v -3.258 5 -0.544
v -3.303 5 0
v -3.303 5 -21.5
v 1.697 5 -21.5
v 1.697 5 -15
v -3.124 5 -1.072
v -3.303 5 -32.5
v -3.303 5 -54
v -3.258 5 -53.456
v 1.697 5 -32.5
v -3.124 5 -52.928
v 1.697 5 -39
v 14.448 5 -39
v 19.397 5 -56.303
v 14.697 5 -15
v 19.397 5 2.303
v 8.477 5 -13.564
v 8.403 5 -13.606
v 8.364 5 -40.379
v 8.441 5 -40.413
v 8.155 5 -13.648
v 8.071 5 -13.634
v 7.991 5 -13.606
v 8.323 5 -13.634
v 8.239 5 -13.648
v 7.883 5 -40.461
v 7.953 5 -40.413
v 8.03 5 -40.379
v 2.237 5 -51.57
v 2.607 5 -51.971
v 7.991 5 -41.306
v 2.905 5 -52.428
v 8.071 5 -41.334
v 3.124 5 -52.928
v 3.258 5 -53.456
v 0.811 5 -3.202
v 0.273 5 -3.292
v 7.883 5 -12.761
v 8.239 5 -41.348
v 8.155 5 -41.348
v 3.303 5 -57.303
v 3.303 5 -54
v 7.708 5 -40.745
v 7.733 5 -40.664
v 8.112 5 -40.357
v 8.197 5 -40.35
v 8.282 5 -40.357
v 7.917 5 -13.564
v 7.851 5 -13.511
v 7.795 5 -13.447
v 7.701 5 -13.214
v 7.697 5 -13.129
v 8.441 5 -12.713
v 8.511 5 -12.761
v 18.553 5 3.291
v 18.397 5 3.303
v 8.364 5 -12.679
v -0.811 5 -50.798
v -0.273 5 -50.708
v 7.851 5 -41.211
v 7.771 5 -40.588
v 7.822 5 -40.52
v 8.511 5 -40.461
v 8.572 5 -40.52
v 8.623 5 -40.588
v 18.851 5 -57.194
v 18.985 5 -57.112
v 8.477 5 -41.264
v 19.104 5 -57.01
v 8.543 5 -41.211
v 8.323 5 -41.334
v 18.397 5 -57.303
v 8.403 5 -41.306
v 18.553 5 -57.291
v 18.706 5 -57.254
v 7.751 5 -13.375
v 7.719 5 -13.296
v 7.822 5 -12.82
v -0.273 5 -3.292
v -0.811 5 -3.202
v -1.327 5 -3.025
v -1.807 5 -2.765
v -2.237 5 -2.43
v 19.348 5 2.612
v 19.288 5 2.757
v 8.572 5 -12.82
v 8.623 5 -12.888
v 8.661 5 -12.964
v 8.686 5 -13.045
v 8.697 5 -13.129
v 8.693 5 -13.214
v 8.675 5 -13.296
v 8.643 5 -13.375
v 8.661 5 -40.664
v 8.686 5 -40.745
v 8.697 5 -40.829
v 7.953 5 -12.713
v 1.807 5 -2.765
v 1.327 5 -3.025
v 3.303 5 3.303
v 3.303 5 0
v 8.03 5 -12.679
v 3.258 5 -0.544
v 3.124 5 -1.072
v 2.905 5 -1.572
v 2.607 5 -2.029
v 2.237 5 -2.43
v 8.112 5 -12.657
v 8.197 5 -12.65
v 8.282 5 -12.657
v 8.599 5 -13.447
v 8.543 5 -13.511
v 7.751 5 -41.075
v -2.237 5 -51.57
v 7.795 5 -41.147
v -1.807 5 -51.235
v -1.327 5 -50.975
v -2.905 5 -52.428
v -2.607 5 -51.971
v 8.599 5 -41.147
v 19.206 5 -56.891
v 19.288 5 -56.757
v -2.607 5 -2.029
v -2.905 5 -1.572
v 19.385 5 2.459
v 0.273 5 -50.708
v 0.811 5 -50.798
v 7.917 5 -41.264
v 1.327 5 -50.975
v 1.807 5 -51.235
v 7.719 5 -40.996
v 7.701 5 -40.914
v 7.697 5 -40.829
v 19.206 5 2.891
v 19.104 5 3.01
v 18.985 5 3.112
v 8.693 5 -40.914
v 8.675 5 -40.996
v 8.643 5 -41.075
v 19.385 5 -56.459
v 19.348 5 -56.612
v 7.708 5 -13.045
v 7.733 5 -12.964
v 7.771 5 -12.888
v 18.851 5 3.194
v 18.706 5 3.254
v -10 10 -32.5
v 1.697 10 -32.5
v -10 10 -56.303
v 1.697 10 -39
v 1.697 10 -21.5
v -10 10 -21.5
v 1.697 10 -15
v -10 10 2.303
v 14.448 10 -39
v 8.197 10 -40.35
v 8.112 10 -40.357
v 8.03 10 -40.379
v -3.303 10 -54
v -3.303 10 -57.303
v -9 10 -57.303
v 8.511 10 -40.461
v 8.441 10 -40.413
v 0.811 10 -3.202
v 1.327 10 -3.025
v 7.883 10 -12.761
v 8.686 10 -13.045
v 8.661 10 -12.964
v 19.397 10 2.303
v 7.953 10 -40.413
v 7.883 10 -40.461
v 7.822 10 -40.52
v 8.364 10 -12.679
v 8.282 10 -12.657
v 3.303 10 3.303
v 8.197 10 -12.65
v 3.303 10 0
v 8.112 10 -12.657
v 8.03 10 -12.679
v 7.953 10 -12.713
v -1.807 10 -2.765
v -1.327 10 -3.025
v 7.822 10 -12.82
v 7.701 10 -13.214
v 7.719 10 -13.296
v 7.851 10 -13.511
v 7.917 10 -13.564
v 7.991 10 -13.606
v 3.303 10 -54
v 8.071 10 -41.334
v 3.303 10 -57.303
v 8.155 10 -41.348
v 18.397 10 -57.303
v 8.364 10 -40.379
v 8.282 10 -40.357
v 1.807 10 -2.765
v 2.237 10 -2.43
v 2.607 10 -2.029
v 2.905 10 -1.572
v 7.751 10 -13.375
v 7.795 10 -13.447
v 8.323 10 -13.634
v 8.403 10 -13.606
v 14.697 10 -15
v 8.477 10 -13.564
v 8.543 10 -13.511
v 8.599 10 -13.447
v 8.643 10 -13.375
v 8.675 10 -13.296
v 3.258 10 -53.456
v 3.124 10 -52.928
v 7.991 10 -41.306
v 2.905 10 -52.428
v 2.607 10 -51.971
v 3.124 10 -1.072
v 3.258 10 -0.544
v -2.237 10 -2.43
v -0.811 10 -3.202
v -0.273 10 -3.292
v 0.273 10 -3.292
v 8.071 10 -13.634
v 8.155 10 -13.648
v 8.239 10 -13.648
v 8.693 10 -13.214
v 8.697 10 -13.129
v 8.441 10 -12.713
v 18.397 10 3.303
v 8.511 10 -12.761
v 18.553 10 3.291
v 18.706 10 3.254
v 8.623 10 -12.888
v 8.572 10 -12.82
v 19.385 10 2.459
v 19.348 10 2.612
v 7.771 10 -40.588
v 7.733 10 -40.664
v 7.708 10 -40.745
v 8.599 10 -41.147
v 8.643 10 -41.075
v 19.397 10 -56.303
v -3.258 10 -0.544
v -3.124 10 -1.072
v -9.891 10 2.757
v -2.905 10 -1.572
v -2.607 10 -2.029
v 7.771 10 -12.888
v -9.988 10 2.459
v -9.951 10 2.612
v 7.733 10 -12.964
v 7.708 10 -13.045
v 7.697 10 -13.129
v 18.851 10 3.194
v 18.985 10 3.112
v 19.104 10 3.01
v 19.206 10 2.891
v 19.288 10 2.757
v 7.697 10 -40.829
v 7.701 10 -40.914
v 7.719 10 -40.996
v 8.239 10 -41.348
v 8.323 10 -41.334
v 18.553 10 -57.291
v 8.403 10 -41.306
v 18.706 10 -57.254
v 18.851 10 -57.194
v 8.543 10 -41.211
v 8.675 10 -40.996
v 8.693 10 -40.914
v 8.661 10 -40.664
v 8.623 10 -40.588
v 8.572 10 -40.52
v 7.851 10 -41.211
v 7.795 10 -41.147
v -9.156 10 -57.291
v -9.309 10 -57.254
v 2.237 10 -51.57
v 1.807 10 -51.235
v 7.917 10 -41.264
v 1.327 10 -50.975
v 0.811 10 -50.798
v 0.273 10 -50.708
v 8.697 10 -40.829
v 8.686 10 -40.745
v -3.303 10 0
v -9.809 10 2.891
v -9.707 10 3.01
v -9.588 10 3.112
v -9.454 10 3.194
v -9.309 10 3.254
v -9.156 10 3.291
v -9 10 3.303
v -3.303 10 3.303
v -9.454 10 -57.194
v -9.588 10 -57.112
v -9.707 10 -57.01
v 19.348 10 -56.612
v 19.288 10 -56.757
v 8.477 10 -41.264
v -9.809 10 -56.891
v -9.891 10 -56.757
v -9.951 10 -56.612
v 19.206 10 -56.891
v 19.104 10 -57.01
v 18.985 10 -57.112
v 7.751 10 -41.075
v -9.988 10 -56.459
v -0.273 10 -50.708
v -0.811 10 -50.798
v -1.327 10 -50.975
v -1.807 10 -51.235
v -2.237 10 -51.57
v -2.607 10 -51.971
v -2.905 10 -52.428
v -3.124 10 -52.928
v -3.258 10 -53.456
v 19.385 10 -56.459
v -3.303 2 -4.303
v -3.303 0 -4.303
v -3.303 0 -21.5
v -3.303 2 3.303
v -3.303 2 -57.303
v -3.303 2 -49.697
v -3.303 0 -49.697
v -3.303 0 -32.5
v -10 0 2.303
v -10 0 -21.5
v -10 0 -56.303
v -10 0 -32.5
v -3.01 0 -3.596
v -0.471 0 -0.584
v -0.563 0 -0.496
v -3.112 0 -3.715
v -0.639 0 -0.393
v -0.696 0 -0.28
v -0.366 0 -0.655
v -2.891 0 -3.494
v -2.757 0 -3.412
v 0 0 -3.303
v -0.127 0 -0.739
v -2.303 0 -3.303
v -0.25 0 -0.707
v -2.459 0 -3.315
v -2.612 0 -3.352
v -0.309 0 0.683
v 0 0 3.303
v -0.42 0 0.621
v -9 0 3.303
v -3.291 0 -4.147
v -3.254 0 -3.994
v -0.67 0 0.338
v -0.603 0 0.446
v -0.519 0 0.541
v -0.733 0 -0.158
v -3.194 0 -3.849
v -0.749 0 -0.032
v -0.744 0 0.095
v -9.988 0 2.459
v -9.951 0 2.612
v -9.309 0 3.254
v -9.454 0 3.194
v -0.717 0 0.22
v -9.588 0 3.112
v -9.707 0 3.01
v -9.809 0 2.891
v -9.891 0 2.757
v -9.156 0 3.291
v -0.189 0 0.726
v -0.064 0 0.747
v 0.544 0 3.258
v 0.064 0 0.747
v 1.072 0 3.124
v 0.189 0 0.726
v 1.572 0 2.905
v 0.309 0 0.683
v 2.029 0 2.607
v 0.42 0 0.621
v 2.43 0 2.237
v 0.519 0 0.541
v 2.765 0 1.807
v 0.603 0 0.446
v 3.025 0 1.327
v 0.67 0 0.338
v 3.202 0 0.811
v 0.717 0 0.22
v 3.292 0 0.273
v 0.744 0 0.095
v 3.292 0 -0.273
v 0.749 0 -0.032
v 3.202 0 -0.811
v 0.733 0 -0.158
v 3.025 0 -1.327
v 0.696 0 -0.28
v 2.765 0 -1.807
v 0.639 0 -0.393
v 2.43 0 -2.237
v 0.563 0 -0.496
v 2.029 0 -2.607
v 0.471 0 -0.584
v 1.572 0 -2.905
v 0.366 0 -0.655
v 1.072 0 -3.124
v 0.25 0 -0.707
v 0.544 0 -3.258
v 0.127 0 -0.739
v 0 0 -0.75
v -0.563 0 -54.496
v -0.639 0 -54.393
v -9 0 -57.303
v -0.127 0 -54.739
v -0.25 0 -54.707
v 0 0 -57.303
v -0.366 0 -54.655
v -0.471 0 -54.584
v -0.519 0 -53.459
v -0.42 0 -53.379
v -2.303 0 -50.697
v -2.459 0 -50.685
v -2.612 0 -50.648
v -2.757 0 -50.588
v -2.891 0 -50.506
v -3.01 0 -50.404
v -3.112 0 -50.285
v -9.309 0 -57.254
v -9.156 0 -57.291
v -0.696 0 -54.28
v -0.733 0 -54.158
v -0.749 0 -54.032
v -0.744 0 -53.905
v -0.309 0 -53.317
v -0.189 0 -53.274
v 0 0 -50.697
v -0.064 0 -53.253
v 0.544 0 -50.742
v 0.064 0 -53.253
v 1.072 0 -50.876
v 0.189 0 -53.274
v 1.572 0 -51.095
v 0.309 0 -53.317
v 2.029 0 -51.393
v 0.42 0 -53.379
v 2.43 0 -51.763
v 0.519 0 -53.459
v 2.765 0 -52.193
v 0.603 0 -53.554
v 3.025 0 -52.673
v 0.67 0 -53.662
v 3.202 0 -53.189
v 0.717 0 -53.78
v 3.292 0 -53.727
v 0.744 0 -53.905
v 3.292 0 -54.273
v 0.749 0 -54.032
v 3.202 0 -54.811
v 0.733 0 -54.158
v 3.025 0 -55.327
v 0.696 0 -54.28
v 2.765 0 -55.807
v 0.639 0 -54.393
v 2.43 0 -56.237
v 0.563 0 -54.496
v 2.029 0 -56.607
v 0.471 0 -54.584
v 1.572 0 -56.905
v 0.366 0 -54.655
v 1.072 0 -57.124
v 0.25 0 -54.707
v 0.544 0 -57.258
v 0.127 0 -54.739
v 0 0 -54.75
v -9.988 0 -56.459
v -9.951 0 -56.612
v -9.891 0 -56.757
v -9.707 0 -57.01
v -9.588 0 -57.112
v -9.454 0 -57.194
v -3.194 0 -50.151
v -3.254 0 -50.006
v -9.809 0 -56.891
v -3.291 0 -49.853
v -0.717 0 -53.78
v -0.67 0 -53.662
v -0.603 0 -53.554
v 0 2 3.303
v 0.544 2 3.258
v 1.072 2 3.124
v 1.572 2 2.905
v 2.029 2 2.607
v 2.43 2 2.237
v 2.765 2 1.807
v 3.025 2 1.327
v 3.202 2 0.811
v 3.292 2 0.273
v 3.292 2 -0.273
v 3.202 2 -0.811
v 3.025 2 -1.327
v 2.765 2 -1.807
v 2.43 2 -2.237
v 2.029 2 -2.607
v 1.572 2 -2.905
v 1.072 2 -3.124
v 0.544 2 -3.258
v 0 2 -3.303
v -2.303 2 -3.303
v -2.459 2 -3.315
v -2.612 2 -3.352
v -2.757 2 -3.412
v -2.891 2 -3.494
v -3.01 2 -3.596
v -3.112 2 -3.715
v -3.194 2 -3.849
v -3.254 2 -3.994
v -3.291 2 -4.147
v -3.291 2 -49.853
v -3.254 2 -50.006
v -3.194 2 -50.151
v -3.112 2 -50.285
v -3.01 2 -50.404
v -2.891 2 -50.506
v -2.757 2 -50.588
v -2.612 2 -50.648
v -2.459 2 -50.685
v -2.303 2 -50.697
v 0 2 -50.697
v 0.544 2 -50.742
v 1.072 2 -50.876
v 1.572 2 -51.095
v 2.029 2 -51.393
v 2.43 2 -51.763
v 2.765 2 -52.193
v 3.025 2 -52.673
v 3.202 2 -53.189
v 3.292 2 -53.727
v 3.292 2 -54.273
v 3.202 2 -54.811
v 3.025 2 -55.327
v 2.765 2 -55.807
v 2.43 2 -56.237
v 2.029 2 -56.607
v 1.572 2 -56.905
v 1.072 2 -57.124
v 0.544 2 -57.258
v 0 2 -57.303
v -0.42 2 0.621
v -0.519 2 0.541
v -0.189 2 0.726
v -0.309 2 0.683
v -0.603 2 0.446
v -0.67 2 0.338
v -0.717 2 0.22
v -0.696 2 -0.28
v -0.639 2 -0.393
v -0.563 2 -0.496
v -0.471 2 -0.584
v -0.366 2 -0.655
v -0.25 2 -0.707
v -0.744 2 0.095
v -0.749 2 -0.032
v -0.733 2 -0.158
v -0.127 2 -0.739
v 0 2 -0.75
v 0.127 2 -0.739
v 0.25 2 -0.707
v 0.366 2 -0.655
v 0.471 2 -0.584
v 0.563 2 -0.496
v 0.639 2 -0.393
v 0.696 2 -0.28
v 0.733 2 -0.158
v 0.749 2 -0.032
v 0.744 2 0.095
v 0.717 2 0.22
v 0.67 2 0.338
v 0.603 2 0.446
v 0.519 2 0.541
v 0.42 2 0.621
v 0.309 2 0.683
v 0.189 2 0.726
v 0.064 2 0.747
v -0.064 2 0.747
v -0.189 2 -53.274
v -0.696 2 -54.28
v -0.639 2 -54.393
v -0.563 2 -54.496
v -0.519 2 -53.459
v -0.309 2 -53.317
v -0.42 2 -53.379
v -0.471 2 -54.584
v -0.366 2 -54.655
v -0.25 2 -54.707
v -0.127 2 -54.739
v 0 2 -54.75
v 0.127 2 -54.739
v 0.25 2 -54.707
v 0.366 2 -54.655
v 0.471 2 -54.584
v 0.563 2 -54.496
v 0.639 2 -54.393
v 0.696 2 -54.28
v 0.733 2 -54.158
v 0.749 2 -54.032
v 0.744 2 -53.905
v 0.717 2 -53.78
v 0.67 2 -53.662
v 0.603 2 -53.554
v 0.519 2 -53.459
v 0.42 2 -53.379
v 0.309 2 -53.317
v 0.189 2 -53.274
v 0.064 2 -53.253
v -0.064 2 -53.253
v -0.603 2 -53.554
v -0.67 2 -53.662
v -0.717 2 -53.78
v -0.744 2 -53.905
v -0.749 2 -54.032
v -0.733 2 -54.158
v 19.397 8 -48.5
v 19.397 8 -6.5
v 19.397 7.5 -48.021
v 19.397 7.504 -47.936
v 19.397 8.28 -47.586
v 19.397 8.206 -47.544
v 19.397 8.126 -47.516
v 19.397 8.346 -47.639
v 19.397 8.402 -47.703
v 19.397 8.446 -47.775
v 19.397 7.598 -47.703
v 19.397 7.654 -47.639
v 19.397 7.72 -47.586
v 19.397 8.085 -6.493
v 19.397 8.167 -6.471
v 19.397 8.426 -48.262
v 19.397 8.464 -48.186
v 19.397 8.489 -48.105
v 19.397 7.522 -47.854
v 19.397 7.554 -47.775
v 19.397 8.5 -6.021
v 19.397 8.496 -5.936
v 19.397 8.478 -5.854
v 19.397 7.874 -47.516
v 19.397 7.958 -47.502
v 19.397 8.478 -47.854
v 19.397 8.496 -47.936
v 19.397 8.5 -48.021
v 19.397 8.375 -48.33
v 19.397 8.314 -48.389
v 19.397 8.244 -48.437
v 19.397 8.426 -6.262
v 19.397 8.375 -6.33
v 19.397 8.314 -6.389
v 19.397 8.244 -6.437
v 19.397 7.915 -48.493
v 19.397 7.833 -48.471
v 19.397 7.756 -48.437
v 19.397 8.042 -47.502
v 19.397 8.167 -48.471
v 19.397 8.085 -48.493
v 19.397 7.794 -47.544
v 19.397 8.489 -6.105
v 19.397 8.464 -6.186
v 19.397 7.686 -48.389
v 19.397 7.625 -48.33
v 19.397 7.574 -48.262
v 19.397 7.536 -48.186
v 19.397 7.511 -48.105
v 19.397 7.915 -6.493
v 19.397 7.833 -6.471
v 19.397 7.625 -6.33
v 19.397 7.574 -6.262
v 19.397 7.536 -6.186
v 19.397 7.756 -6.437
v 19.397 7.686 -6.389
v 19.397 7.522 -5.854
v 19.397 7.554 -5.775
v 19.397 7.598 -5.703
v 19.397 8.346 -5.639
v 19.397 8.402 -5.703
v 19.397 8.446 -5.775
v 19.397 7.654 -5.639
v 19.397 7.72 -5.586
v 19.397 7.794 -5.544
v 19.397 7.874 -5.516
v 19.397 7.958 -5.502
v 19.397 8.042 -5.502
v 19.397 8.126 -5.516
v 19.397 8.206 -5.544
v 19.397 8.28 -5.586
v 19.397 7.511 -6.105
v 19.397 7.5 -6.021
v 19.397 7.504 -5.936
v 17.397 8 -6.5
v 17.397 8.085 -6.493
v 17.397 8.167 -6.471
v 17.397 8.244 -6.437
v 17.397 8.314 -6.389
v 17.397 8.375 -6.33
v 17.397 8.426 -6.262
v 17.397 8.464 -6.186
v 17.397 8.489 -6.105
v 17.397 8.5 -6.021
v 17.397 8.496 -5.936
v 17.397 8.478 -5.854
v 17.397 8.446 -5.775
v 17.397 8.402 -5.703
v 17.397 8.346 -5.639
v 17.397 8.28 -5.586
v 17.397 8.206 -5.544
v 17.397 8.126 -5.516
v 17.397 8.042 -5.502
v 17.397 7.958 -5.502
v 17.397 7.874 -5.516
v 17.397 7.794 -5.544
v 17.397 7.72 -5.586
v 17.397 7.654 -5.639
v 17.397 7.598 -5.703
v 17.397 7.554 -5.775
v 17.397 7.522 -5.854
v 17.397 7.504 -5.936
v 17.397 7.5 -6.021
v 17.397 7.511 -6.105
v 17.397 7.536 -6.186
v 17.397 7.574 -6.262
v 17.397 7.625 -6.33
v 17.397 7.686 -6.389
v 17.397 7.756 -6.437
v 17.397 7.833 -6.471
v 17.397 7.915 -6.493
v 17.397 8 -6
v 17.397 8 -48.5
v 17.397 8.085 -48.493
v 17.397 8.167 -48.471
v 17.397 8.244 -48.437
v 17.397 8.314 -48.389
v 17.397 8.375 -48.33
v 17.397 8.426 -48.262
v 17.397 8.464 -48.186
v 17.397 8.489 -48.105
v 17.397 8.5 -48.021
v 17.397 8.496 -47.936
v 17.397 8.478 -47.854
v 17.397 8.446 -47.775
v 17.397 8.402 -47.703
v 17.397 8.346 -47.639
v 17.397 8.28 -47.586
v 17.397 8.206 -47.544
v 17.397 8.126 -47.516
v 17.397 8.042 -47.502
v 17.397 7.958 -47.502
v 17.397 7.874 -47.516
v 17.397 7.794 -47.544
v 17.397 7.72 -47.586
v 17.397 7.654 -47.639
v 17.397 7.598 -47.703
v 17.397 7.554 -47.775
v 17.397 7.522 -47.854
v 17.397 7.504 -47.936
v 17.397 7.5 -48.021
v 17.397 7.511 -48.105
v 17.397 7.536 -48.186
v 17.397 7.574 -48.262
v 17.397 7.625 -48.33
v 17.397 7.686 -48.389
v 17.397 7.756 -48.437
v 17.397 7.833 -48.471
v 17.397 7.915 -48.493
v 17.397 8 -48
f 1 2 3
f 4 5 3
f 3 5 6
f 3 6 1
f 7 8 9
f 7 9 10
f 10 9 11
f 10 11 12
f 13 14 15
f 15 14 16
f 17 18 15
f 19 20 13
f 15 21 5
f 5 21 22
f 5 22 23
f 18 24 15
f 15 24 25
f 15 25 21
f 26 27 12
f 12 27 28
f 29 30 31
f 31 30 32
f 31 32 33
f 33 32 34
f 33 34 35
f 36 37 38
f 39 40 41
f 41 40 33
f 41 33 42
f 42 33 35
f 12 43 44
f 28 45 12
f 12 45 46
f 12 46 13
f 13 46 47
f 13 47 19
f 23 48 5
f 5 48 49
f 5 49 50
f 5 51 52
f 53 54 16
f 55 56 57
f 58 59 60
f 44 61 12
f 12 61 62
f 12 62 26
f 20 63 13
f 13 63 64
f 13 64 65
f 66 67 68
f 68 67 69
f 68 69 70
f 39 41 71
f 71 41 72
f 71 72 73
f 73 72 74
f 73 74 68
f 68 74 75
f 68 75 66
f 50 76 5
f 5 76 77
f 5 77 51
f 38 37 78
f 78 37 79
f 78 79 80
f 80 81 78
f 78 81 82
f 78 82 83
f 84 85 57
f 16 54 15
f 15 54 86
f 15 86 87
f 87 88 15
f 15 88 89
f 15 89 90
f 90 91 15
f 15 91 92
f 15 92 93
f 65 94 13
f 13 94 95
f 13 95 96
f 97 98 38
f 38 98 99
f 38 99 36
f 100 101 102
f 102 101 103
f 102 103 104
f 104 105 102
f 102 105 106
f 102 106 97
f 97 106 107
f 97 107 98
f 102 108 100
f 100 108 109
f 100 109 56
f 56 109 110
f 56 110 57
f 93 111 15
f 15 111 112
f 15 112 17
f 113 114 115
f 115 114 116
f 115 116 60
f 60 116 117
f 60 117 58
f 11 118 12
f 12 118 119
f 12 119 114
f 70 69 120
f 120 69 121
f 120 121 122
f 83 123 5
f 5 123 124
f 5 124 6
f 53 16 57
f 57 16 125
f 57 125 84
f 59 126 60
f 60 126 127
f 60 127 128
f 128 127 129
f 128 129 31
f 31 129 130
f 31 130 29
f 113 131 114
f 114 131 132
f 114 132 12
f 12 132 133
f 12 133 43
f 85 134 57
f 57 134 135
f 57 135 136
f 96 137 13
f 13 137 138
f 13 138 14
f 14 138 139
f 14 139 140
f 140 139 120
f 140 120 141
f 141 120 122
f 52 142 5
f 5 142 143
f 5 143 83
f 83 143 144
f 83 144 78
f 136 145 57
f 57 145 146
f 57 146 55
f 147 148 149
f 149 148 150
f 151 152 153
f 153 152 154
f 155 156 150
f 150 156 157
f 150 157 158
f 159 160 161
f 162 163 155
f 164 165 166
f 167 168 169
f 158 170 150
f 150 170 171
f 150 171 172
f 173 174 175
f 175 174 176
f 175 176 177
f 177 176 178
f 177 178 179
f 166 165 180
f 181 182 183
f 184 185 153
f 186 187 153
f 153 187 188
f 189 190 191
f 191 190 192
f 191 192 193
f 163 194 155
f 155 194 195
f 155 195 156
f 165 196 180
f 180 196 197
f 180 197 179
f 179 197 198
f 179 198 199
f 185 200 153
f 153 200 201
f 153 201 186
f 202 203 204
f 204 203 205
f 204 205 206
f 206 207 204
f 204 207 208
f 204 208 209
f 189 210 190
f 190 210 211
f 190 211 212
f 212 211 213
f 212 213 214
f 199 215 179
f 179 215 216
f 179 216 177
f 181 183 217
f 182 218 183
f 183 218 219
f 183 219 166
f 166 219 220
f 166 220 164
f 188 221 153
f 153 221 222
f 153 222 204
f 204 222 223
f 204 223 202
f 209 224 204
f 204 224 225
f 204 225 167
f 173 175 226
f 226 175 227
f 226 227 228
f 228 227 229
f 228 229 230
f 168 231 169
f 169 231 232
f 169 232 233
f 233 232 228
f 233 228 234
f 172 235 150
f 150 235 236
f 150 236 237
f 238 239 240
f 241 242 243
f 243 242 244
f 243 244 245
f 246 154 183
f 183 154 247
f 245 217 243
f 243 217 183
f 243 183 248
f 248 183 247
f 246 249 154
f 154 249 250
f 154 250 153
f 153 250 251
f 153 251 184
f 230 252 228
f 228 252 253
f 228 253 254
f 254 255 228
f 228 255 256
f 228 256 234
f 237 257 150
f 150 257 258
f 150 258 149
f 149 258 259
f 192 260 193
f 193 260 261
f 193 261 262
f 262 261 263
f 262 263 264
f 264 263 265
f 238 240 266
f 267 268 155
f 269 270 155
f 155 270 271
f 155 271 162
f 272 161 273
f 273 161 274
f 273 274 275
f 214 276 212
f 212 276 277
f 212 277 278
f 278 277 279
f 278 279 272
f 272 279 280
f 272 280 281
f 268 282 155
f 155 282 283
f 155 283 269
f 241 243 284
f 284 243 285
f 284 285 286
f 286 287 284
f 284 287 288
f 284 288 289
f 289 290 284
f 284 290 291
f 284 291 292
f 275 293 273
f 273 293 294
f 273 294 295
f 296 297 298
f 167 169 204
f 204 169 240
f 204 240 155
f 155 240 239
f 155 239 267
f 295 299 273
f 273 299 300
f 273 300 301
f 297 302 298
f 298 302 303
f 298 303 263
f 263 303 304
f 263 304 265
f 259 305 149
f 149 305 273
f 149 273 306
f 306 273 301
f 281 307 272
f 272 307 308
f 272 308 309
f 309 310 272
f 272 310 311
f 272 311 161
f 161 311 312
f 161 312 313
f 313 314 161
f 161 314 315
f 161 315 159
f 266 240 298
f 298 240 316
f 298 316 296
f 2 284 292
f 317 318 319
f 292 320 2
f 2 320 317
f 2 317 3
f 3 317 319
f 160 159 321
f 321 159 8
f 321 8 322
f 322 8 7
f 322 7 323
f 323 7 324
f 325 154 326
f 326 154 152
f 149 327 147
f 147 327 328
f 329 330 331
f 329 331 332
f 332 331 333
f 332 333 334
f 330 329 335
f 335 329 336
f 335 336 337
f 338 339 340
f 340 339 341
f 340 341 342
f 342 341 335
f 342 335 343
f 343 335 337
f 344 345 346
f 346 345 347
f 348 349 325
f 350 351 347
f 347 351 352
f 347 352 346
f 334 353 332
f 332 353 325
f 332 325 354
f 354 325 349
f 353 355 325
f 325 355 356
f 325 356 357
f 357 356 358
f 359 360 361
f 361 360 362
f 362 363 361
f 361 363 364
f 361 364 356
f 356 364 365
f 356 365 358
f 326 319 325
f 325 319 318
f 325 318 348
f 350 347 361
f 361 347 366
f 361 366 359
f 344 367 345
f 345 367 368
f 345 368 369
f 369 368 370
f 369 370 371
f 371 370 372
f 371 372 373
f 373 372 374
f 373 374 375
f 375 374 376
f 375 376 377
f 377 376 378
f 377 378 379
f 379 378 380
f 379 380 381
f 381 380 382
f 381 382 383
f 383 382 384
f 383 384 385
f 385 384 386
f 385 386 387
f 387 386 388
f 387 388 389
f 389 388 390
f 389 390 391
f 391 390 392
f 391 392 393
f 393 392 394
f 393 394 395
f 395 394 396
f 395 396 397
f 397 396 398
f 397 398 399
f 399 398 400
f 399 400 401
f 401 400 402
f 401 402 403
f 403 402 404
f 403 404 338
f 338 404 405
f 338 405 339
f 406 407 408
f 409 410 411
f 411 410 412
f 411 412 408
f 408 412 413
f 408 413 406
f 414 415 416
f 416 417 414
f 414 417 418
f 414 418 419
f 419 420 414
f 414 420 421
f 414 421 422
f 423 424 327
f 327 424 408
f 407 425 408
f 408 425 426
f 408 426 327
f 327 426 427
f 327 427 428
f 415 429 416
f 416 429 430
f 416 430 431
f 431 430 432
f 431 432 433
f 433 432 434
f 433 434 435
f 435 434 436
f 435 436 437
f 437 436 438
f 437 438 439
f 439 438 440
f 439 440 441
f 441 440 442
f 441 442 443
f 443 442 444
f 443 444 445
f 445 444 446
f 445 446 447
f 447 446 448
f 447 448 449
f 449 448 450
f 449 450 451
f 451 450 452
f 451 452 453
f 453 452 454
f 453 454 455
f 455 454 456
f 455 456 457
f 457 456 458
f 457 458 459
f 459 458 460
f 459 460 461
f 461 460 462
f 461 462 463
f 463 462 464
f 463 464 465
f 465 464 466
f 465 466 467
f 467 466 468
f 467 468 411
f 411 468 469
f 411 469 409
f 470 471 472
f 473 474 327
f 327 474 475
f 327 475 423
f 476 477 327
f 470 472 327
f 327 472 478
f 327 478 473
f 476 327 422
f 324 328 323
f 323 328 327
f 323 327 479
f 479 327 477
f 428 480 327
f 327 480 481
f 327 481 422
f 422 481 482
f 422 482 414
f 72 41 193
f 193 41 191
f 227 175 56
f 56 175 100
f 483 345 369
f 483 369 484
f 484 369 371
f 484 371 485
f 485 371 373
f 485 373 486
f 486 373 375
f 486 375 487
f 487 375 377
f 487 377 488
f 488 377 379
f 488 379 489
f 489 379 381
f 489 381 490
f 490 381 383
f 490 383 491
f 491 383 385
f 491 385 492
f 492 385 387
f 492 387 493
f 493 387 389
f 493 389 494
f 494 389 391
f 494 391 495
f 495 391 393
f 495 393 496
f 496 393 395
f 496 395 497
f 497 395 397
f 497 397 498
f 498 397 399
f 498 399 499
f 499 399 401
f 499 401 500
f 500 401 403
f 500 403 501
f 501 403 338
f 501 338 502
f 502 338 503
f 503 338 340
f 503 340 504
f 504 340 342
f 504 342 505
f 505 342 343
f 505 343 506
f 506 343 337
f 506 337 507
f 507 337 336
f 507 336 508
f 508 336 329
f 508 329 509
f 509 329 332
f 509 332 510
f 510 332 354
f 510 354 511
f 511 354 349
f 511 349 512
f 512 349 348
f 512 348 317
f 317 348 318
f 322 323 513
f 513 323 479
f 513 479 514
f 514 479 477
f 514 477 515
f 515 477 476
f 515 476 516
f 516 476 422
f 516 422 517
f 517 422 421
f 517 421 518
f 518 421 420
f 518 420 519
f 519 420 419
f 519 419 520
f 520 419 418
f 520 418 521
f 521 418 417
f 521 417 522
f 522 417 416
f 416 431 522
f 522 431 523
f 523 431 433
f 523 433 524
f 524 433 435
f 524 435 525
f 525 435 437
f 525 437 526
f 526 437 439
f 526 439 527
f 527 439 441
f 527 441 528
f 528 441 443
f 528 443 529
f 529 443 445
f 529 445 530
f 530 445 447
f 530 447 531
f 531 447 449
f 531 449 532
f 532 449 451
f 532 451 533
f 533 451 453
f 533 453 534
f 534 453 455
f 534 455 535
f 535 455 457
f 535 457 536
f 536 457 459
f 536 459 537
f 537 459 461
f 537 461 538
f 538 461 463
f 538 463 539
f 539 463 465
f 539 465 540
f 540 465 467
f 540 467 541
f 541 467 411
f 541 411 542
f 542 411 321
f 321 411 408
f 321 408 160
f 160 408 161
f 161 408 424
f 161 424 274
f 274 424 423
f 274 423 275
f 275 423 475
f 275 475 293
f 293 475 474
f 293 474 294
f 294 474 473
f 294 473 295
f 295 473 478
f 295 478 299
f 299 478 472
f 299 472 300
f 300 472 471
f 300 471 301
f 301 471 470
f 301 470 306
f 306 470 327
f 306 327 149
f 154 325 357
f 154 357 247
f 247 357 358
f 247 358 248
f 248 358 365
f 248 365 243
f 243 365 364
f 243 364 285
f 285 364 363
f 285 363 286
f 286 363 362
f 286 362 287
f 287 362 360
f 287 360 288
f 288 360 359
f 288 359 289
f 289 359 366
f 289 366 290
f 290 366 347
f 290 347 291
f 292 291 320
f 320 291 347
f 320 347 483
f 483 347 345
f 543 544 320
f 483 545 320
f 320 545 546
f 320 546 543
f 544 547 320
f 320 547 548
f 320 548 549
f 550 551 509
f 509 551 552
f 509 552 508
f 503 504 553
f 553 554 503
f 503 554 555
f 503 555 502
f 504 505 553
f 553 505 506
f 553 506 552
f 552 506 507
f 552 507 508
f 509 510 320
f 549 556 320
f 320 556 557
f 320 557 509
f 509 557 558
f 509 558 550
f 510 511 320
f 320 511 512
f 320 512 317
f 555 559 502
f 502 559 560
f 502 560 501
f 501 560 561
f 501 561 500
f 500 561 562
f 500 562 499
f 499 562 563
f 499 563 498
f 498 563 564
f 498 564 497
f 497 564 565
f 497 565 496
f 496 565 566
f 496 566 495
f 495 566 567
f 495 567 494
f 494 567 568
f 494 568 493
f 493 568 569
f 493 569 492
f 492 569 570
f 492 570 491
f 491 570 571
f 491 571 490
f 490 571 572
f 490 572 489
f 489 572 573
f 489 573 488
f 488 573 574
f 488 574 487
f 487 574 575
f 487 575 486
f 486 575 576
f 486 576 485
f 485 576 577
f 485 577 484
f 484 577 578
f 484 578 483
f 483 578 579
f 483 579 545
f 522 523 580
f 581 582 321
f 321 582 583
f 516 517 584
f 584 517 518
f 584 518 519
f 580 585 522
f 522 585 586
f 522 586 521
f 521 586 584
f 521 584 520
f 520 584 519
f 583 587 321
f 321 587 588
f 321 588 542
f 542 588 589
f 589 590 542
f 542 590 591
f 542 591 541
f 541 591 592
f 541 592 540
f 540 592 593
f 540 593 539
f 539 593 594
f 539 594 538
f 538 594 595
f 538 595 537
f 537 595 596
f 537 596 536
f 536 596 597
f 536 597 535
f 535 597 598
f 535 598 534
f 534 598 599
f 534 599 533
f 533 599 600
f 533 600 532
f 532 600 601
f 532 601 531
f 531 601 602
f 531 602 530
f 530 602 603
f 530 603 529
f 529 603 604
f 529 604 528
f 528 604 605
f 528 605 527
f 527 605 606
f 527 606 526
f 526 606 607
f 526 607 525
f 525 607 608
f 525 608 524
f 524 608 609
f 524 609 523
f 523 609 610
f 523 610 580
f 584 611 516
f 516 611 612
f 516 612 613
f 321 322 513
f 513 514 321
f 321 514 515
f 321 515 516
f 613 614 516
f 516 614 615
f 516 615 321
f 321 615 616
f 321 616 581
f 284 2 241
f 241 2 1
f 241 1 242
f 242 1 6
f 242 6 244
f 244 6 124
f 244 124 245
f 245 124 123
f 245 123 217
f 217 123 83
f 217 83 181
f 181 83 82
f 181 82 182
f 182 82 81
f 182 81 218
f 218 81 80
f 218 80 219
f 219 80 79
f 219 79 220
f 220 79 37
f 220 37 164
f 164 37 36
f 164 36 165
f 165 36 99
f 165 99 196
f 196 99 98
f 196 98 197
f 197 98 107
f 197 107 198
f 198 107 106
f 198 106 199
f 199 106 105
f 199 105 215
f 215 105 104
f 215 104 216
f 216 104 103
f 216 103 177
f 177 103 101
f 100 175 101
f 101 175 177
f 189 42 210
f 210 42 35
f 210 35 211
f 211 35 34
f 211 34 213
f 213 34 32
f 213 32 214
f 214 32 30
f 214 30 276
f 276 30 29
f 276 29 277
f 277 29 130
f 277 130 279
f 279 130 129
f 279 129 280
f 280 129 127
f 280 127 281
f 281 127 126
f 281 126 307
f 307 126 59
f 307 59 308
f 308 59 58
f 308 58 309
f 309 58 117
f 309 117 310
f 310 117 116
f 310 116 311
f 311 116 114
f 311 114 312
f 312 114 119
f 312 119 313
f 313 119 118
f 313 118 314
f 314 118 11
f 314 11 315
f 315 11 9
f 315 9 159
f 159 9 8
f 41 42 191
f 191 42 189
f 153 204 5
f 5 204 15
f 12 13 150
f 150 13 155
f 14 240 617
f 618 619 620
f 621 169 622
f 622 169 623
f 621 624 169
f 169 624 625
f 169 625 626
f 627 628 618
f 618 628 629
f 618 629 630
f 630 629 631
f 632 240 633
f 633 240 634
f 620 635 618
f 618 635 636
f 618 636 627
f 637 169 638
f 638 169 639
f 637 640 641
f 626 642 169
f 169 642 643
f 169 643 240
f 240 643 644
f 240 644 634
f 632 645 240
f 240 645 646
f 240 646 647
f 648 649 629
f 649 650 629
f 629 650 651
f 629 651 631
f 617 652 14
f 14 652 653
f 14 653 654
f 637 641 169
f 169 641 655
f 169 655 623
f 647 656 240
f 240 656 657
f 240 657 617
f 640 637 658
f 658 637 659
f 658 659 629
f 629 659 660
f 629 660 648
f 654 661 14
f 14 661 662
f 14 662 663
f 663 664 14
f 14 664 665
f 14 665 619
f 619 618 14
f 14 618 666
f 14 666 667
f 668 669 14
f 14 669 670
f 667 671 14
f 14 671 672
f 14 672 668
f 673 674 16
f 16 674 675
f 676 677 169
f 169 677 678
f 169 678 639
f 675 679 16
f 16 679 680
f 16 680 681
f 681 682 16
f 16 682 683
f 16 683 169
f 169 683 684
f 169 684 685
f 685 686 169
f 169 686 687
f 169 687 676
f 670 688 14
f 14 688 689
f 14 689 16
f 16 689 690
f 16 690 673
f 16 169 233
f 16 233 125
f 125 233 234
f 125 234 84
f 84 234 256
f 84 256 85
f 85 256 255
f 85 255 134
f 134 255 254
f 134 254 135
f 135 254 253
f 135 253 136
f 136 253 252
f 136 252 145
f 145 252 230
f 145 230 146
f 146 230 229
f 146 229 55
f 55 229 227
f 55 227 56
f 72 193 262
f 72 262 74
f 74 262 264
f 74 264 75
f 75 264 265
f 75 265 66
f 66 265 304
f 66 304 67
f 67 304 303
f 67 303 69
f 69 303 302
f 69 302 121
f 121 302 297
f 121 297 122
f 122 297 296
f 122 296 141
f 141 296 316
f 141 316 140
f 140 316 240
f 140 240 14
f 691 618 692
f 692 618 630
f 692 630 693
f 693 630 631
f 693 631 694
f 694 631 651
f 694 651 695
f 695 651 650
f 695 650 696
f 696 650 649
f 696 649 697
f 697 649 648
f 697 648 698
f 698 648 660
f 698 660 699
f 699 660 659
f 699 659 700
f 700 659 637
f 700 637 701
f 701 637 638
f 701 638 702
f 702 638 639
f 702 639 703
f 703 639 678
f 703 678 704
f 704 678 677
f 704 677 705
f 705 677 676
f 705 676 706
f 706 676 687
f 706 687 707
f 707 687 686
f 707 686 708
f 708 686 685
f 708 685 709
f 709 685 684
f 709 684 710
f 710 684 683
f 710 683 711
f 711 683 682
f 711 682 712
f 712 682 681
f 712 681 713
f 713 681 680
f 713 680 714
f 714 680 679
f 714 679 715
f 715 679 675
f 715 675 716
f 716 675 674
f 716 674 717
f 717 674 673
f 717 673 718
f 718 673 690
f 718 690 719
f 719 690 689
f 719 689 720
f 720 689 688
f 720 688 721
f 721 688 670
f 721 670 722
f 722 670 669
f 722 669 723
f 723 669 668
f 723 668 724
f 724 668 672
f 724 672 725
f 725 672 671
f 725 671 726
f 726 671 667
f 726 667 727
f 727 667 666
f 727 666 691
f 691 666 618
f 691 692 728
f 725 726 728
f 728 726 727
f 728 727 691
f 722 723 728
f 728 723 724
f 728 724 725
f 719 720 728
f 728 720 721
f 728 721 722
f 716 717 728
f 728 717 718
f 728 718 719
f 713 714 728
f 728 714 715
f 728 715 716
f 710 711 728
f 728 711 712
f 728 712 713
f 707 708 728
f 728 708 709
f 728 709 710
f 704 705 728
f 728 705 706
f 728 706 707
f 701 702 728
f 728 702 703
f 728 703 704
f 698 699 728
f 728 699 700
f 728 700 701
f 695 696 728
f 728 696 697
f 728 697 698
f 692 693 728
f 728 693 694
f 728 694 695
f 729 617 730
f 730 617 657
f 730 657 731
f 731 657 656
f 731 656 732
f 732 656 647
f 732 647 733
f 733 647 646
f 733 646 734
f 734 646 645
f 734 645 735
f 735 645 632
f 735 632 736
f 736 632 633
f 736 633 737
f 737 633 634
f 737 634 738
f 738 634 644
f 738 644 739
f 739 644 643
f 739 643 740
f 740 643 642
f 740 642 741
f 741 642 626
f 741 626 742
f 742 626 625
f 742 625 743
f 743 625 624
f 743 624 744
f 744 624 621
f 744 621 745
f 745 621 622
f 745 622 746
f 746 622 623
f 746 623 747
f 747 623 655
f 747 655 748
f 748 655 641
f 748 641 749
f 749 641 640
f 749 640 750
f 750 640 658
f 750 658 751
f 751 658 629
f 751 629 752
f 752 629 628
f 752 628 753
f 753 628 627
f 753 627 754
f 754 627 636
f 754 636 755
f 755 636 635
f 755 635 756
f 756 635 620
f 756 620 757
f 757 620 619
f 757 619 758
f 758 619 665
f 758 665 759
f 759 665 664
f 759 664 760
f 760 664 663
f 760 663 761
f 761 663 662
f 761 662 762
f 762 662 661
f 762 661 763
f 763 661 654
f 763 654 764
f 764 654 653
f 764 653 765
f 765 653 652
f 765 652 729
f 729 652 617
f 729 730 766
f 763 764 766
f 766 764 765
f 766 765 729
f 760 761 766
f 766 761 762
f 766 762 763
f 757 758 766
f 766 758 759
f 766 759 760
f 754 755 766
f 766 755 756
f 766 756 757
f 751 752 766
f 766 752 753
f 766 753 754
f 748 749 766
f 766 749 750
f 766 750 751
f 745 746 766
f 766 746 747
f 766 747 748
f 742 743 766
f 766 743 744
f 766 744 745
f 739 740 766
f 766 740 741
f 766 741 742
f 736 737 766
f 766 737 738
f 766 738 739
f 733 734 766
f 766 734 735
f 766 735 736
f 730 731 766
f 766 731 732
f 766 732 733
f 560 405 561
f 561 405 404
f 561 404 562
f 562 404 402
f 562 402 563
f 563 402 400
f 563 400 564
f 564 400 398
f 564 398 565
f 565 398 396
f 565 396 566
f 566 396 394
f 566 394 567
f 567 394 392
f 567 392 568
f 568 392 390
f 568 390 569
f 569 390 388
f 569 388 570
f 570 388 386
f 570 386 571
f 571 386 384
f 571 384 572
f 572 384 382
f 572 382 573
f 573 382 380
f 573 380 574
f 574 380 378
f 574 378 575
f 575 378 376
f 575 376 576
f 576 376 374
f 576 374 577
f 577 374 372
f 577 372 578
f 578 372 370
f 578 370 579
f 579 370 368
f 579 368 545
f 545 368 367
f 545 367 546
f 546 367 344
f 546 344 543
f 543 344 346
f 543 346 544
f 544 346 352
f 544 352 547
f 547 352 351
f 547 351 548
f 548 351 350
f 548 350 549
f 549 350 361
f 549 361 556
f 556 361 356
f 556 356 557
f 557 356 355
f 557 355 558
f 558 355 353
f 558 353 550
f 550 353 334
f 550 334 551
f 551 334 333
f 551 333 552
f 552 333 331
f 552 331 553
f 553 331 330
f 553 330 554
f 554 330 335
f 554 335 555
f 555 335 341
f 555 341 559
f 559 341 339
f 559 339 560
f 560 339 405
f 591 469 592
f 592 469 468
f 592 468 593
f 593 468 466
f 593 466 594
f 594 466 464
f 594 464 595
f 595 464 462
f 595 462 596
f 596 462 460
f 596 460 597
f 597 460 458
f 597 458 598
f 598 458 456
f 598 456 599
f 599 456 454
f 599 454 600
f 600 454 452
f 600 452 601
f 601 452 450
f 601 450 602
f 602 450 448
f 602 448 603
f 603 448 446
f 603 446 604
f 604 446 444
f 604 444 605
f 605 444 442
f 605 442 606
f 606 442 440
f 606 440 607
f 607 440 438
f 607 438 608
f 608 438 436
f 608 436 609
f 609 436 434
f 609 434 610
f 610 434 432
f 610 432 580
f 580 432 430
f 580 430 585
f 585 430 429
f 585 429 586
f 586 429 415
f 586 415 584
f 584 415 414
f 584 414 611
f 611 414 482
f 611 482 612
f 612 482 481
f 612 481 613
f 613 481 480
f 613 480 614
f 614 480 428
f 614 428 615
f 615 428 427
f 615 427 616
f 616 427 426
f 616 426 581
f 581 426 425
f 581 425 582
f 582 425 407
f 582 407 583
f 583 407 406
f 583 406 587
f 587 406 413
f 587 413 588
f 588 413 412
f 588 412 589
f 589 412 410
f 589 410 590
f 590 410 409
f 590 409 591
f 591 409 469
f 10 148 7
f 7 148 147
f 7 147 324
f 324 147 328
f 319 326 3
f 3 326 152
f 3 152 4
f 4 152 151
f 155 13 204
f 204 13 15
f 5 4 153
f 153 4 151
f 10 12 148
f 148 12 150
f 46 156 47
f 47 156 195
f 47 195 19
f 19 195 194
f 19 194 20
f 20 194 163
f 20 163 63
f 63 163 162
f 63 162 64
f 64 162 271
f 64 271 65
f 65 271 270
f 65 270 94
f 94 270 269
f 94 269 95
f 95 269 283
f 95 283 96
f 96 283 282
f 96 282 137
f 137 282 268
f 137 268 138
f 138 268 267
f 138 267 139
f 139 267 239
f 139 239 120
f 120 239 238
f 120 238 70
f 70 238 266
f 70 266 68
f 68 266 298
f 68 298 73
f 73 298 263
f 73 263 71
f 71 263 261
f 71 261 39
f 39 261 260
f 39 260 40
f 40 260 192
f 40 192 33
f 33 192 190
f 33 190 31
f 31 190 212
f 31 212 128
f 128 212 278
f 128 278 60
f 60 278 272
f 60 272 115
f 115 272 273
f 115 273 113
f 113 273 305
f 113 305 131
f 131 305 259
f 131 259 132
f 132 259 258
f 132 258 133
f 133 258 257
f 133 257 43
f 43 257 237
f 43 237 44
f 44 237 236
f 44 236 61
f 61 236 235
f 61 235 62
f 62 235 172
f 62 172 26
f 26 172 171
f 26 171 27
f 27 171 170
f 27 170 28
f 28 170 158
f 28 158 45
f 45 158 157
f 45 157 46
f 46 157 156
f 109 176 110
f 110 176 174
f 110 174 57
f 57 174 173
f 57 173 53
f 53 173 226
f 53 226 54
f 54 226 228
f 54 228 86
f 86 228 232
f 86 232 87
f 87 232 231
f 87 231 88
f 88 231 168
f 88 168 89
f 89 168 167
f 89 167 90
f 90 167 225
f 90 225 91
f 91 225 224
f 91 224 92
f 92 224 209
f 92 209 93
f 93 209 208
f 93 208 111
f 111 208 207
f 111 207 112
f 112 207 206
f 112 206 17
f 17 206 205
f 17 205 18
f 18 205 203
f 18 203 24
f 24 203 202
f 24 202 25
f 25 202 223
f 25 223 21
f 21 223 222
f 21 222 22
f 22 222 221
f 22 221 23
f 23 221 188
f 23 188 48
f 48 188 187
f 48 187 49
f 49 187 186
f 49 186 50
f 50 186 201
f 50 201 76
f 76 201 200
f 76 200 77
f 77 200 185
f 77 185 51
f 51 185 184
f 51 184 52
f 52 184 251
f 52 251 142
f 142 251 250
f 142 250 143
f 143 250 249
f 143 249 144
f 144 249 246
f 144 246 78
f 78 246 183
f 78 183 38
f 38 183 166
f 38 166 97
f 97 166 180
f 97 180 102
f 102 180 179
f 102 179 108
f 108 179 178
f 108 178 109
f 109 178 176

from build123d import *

# Parameters (mm, degrees)
SKETCH_1_R           = 1.5
EXTRUDE_1_DEPTH      = 10
SKETCH_2_W           = 8.63091869
SKETCH_2_H           = 65.296694921
CUT_EXTRUDE_1_DEPTH  = 8
SKETCH_3_W           = 60.606
SKETCH_3_H           = 5
EXTRUDE_2_DEPTH      = 15
CUT_EXTRUDE_2_DEPTH  = 15
CUT_EXTRUDE_3_DEPTH  = 15
SKETCH_7_W           = 6.5
SKETCH_7_H           = 12
CUT_EXTRUDE_4_DEPTH  = 15
EXTRUDE_3_DEPTH      = 7.7
EXTRUDE_3_DEPTH_BACK = 1
SKETCH_8_W           = 60.606
SKETCH_8_H           = 5
CUT_EXTRUDE_5_DEPTH  = 7.7
EXTRUDE_4_DEPTH      = 16
SKETCH_13_R          = 1.5
CUT_EXTRUDE_6_DEPTH  = 10.5
CUT_EXTRUDE_7_DEPTH  = 2
SKETCH_17_W          = 16.187708769
SKETCH_17_H          = 64.99365071
CUT_EXTRUDE_8_DEPTH  = 16
SKETCH_18_R          = 1.5
SKETCH_18_R_2        = 0.5
EXTRUDE_5_DEPTH      = 5
SKETCH_19_R          = 1.5
SKETCH_19_R_2        = 0.75
EXTRUDE_6_DEPTH      = 2
SKETCH_20_W          = 6.697
SKETCH_20_H          = 11
SKETCH_20_W_2        = 2.056917385
CUT_EXTRUDE_9_DEPTH  = 15
CUT_EXTRUDE_10_DEPTH = 10
SKETCH_22_W          = 4
SKETCH_22_H          = 6.5
EXTRUDE_7_DEPTH      = 5
SKETCH_23_R          = 0.5
CUT_EXTRUDE_11_DEPTH = 5
SKETCH_24_R          = 0.5
EXTRUDE_8_DEPTH      = 5


with BuildPart() as part:
    # 草图1 → 凸台-拉伸1 (new body)
    with BuildSketch(Plane(origin=(0, 0, 0), x_dir=(1, 0, 0), z_dir=(0, 1, 0))):
        with BuildLine():
            Line((0, 50.697), (-2.303, 50.697))
            ThreePointArc((-2.303, 50.697), (-3.010106781, 50.404106781), (-3.303, 49.697))
            Line((-3.303, 49.697), (-3.303, 4.303))
            ThreePointArc((-3.303, 4.303), (-3.010106781, 3.595893219), (-2.303, 3.303))
            Line((-2.303, 3.303), (0, 3.303))
            ThreePointArc((0, 3.303), (3.303, 0), (0, -3.303))
            Line((0, -3.303), (-9, -3.303))
            ThreePointArc((-9, -3.303), (-9.707106781, -3.010106781), (-10, -2.303))
            Line((-10, -2.303), (-10, 56.303))
            ThreePointArc((-10, 56.303), (-9.707106781, 57.010106781), (-9, 57.303))
            Line((-9, 57.303), (0, 57.303))
            ThreePointArc((0, 57.303), (3.303, 54), (0, 50.697))
        make_face()
        with Locations(Location((0, 0, 0), (0, 0, 270))):
            Circle(SKETCH_1_R, mode=Mode.SUBTRACT)
        with Locations(Location((0, 54, 0), (0, 0, 270))):
            Circle(SKETCH_1_R, mode=Mode.SUBTRACT)
    extrude(amount=EXTRUDE_1_DEPTH)

    # 草图2 → 切除-拉伸1 (cut)
    with BuildSketch(Plane(origin=(0, 10, 0), x_dir=(1, 0, 0), z_dir=(0, 1, 0))):
        with Locations((1.012459345, 26.901356544)):
            Rectangle(SKETCH_2_W, SKETCH_2_H)
    extrude(amount=-CUT_EXTRUDE_1_DEPTH, mode=Mode.SUBTRACT)

    # 草图3 → 凸台-拉伸2 (add)
    with BuildSketch(Plane(origin=(-3.303, 0, 0), x_dir=(0, 0, -1), z_dir=(1, 0, 0))):
        with Locations((27, 7.5)):
            Rectangle(SKETCH_3_W, SKETCH_3_H)
    extrude(amount=EXTRUDE_2_DEPTH)

    # 草图4 → 切除-拉伸2 (cut)
    with BuildSketch(Plane(origin=(0, 10, 0), x_dir=(1, 0, 0), z_dir=(0, 1, 0))):
        with BuildLine():
            ThreePointArc((10.697, 57.303), (11.404106781, 57.010106781), (11.697, 56.303))
            Line((11.697, 56.303), (11.697, 57.303))
            Line((11.697, 57.303), (10.697, 57.303))
        make_face()
        with BuildLine():
            ThreePointArc((11.697, -2.303), (11.404106781, -3.010106781), (10.697, -3.303))
            Line((10.697, -3.303), (11.697, -3.303))
            Line((11.697, -3.303), (11.697, -2.303))
        make_face()
    extrude(amount=-CUT_EXTRUDE_2_DEPTH, mode=Mode.SUBTRACT)

    # 草图5 → 切除-拉伸3 (cut)
    with BuildSketch(Plane.XZ.offset(-5)):
        with BuildLine():
            Line((-3.303, 3.303), (-3.303, 0))
            ThreePointArc((-3.303, 0), (0, -3.303), (3.303, 0))
            ThreePointArc((3.303, 0), (2.335573698, 2.335573698), (0, 3.303))
            Line((0, 3.303), (-3.303, 3.303))
        make_face()
        with BuildLine():
            ThreePointArc((0, 3.303), (2.335573698, 2.335573698), (3.303, 0))
            Line((3.303, 0), (3.303, 3.303))
            Line((3.303, 3.303), (0, 3.303))
        make_face()
        with BuildLine():
            ThreePointArc((0, -50.697), (-2.335573698, -51.664426302), (-3.303, -54))
            Line((-3.303, -54), (-3.303, -57.303))
            Line((-3.303, -57.303), (0, -57.303))
            ThreePointArc((0, -57.303), (2.335573698, -56.335573698), (3.303, -54))
            ThreePointArc((3.303, -54), (2.335573698, -51.664426302), (0, -50.697))
        make_face()
        with BuildLine():
            ThreePointArc((3.303, -54), (2.335573698, -56.335573698), (0, -57.303))
            Line((0, -57.303), (3.303, -57.303))
            Line((3.303, -57.303), (3.303, -54))
        make_face()
    extrude(amount=-CUT_EXTRUDE_3_DEPTH, mode=Mode.SUBTRACT)

    # 草图7 → 切除-拉伸4 (cut)
    with BuildSketch(Plane(origin=(0, 5, 0), x_dir=(-1, 0, 0), z_dir=(0, -1, 0))):
        with Locations((-0.947, 33)):
            Rectangle(SKETCH_7_W, SKETCH_7_H)
        Polygon((-4.197, 27), (-4.197, 39), (-10.697, 39), (-10.697, 15), (2.303, 15), (2.303, 27), align=None)
    extrude(amount=-CUT_EXTRUDE_4_DEPTH, mode=Mode.SUBTRACT)

    # 草图8 → 凸台-拉伸3 (add, two sides: drawn at the far end of the back side and taken through both)
    with BuildSketch(Plane(origin=(11.697, 0, 0), x_dir=(0, 0, -1), z_dir=(1, 0, 0)).offset(-EXTRUDE_3_DEPTH_BACK)):
        with Locations((27, 7.5)):
            Rectangle(SKETCH_8_W, SKETCH_8_H)
    extrude(amount=EXTRUDE_3_DEPTH + EXTRUDE_3_DEPTH_BACK)

    # 草图10 → 切除-拉伸5 (cut)
    with BuildSketch(Plane(origin=(0, 10, 0), x_dir=(1, 0, 0), z_dir=(0, 1, 0))):
        with BuildLine():
            ThreePointArc((18.397, 57.303), (19.104106781, 57.010106781), (19.397, 56.303))
            Line((19.397, 56.303), (19.397, 57.303))
            Line((19.397, 57.303), (18.397, 57.303))
        make_face()
        with BuildLine():
            ThreePointArc((19.397, -2.303), (19.104106781, -3.010106781), (18.397, -3.303))
            Line((18.397, -3.303), (19.397, -3.303))
            Line((19.397, -3.303), (19.397, -2.303))
        make_face()
    extrude(amount=-CUT_EXTRUDE_5_DEPTH, mode=Mode.SUBTRACT)

    # 草图12 → 凸台-拉伸4 (add)
    with BuildSketch(Plane.XZ.offset(-5)):
        with BuildLine():
            Line((17.397, 2.303), (17.397, -56.303))
            ThreePointArc((17.397, -56.303), (17.689893219, -57.010106781), (18.397, -57.303))
            ThreePointArc((18.397, -57.303), (19.104106781, -57.010106781), (19.397, -56.303))
            Line((19.397, -56.303), (19.397, 2.303))
            ThreePointArc((19.397, 2.303), (19.104106781, 3.010106781), (18.397, 3.303))
            ThreePointArc((18.397, 3.303), (17.689893219, 3.010106781), (17.397, 2.303))
        make_face()
    extrude(amount=EXTRUDE_4_DEPTH)

    # 草图13 → 切除-拉伸6 (cut)
    with BuildSketch(Plane(origin=(0, 10, 0), x_dir=(1, 0, 0), z_dir=(0, 1, 0))):
        with Locations(Location((4.197, 13.15, 0), (0, 0, 270))):
            Circle(SKETCH_13_R)
        with Locations(Location((4.197, 40.85, 0), (0, 0, 270))):
            Circle(SKETCH_13_R)
    extrude(amount=-CUT_EXTRUDE_6_DEPTH, mode=Mode.SUBTRACT)

    # 草图16 → 切除-拉伸7 (cut)
    with BuildSketch(Plane(origin=(19.397, 0, 0), x_dir=(0, 0, -1), z_dir=(1, 0, 0))):
        with BuildLine():
            ThreePointArc((6, 7.5), (6.353553391, 7.646446609), (6.5, 8))
            Line((6.5, 8), (6, 8))
            Line((6, 8), (6, 7.5))
        make_face()
        with BuildLine():
            Line((6, 8), (6.5, 8))
            ThreePointArc((6.5, 8), (5.646446609, 8.353553391), (6, 7.5))
            Line((6, 7.5), (6, 8))
        make_face()
        with BuildLine():
            ThreePointArc((6, -8.5), (5.646446609, -9.353553391), (6.5, -9))
            Line((6.5, -9), (6, -9))
            Line((6, -9), (6, -8.5))
        make_face()
        with BuildLine():
            Line((6, -9), (6.5, -9))
            ThreePointArc((6.5, -9), (6.353553391, -8.646446609), (6, -8.5))
            Line((6, -8.5), (6, -9))
        make_face()
        with BuildLine():
            ThreePointArc((48, -8.5), (47.646446609, -8.646446609), (47.5, -9))
            Line((47.5, -9), (48, -9))
            Line((48, -9), (48, -8.5))
        make_face()
        with BuildLine():
            Line((48, -9), (47.5, -9))
            ThreePointArc((47.5, -9), (48, -9.5), (48.5, -9))
            ThreePointArc((48.5, -9), (48.353553391, -8.646446609), (48, -8.5))
            Line((48, -8.5), (48, -9))
        make_face()
        with BuildLine():
            ThreePointArc((48.5, 8), (48, 8.5), (47.5, 8))
            Line((47.5, 8), (48, 8))
            Line((48, 8), (48, 7.5))
            ThreePointArc((48, 7.5), (48.353553391, 7.646446609), (48.5, 8))
        make_face()
        with BuildLine():
            Line((48, 8), (47.5, 8))
            ThreePointArc((47.5, 8), (47.646446609, 7.646446609), (48, 7.5))
            Line((48, 7.5), (48, 8))
        make_face()
    extrude(amount=-CUT_EXTRUDE_7_DEPTH, mode=Mode.SUBTRACT)

    # 草图17 → 切除-拉伸8 (cut)
    with BuildSketch(Plane.XZ.offset(11)):
        with Locations((22.196549454, -27.767960921)):
            Rectangle(SKETCH_17_W, SKETCH_17_H)
    extrude(amount=-CUT_EXTRUDE_8_DEPTH, mode=Mode.SUBTRACT)

    # 草图18 → 凸台-拉伸5 (add)
    # profile 1 of 2: a face of its own
    with BuildSketch(Plane(origin=(0, 10, 0), x_dir=(1, 0, 0), z_dir=(0, 1, 0))):
        with Locations((4.197, 13.15)):
            Circle(SKETCH_18_R)
        with Locations(Location((4.197, 13.15, 0), (0, 0, 270))):
            Circle(SKETCH_18_R_2, mode=Mode.SUBTRACT)
    # profile 2 of 2: a face of its own
    with BuildSketch(Plane(origin=(0, 10, 0), x_dir=(1, 0, 0), z_dir=(0, 1, 0))):
        with Locations((4.197, 40.85)):
            Circle(SKETCH_18_R)
        with Locations(Location((4.197, 40.85, 0), (0, 0, 270))):
            Circle(SKETCH_18_R_2, mode=Mode.SUBTRACT)
    extrude(amount=-EXTRUDE_5_DEPTH)

    # 草图19 → 凸台-拉伸6 (add)
    # profile 1 of 2: a face of its own
    with BuildSketch(Plane.XZ):
        Circle(SKETCH_19_R)
        with Locations(Location((0, 0, 0), (0, 0, 270))):
            Circle(SKETCH_19_R_2, mode=Mode.SUBTRACT)
    # profile 2 of 2: a face of its own
    with BuildSketch(Plane.XZ):
        with Locations((0, -54)):
            Circle(SKETCH_19_R)
        with Locations(Location((0, -54, 0), (0, 0, 270))):
            Circle(SKETCH_19_R_2, mode=Mode.SUBTRACT)
    extrude(amount=-EXTRUDE_6_DEPTH)

    # 草图20 → 切除-拉伸9 (cut)
    with BuildSketch(Plane(origin=(0, 0, 0), x_dir=(-1, 0, 0), z_dir=(0, -1, 0))):
        with Locations((6.6515, 27)):
            Rectangle(SKETCH_20_W, SKETCH_20_H)
        Polygon((3.303, 32.5), (0, 32.5), (0, 27), (0, 21.5), (3.303, 21.5), align=None)
        with Locations((11.028458692, 27)):
            Rectangle(SKETCH_20_W_2, SKETCH_20_H)
    extrude(amount=-CUT_EXTRUDE_9_DEPTH, mode=Mode.SUBTRACT)

    # 草图21 → 切除-拉伸10 (cut)
    with BuildSketch(Plane(origin=(0, 10, 0), x_dir=(1, 0, 0), z_dir=(0, 1, 0))):
        Polygon((10.697, 15), (14.697, 15), (14.447552493, 39), (10.697, 39), align=None)
    extrude(amount=-CUT_EXTRUDE_10_DEPTH, mode=Mode.SUBTRACT)

    # 草图22 → 凸台-拉伸7 (add)
    with BuildSketch(Plane(origin=(0, 10, 0), x_dir=(1, 0, 0), z_dir=(0, 1, 0))):
        with Locations((-0.303, 18.25)):
            Rectangle(SKETCH_22_W, SKETCH_22_H)
        with Locations((-0.303, 35.75)):
            Rectangle(SKETCH_22_W, SKETCH_22_H)
    extrude(amount=-EXTRUDE_7_DEPTH)

    # 草图23 → 切除-拉伸11 (cut)
    with BuildSketch(Plane(origin=(0, 10, 0), x_dir=(1, 0, 0), z_dir=(0, 1, 0))):
        with Locations(Location((8.197, 13.15, 0), (0, 0, 270))):
            Circle(SKETCH_23_R)
        with Locations(Location((8.197, 40.85, 0), (0, 0, 270))):
            Circle(SKETCH_23_R)
    extrude(amount=-CUT_EXTRUDE_11_DEPTH, mode=Mode.SUBTRACT)

    # 草图24 → 凸台-拉伸8 (add)
    with BuildSketch(Plane(origin=(0, 10, 0), x_dir=(1, 0, 0), z_dir=(0, 1, 0))):
        with Locations((4.197, 13.15)):
            Circle(SKETCH_24_R)
        with Locations((4.197, 40.85)):
            Circle(SKETCH_24_R)
    extrude(amount=-EXTRUDE_8_DEPTH)


solid = part.part
